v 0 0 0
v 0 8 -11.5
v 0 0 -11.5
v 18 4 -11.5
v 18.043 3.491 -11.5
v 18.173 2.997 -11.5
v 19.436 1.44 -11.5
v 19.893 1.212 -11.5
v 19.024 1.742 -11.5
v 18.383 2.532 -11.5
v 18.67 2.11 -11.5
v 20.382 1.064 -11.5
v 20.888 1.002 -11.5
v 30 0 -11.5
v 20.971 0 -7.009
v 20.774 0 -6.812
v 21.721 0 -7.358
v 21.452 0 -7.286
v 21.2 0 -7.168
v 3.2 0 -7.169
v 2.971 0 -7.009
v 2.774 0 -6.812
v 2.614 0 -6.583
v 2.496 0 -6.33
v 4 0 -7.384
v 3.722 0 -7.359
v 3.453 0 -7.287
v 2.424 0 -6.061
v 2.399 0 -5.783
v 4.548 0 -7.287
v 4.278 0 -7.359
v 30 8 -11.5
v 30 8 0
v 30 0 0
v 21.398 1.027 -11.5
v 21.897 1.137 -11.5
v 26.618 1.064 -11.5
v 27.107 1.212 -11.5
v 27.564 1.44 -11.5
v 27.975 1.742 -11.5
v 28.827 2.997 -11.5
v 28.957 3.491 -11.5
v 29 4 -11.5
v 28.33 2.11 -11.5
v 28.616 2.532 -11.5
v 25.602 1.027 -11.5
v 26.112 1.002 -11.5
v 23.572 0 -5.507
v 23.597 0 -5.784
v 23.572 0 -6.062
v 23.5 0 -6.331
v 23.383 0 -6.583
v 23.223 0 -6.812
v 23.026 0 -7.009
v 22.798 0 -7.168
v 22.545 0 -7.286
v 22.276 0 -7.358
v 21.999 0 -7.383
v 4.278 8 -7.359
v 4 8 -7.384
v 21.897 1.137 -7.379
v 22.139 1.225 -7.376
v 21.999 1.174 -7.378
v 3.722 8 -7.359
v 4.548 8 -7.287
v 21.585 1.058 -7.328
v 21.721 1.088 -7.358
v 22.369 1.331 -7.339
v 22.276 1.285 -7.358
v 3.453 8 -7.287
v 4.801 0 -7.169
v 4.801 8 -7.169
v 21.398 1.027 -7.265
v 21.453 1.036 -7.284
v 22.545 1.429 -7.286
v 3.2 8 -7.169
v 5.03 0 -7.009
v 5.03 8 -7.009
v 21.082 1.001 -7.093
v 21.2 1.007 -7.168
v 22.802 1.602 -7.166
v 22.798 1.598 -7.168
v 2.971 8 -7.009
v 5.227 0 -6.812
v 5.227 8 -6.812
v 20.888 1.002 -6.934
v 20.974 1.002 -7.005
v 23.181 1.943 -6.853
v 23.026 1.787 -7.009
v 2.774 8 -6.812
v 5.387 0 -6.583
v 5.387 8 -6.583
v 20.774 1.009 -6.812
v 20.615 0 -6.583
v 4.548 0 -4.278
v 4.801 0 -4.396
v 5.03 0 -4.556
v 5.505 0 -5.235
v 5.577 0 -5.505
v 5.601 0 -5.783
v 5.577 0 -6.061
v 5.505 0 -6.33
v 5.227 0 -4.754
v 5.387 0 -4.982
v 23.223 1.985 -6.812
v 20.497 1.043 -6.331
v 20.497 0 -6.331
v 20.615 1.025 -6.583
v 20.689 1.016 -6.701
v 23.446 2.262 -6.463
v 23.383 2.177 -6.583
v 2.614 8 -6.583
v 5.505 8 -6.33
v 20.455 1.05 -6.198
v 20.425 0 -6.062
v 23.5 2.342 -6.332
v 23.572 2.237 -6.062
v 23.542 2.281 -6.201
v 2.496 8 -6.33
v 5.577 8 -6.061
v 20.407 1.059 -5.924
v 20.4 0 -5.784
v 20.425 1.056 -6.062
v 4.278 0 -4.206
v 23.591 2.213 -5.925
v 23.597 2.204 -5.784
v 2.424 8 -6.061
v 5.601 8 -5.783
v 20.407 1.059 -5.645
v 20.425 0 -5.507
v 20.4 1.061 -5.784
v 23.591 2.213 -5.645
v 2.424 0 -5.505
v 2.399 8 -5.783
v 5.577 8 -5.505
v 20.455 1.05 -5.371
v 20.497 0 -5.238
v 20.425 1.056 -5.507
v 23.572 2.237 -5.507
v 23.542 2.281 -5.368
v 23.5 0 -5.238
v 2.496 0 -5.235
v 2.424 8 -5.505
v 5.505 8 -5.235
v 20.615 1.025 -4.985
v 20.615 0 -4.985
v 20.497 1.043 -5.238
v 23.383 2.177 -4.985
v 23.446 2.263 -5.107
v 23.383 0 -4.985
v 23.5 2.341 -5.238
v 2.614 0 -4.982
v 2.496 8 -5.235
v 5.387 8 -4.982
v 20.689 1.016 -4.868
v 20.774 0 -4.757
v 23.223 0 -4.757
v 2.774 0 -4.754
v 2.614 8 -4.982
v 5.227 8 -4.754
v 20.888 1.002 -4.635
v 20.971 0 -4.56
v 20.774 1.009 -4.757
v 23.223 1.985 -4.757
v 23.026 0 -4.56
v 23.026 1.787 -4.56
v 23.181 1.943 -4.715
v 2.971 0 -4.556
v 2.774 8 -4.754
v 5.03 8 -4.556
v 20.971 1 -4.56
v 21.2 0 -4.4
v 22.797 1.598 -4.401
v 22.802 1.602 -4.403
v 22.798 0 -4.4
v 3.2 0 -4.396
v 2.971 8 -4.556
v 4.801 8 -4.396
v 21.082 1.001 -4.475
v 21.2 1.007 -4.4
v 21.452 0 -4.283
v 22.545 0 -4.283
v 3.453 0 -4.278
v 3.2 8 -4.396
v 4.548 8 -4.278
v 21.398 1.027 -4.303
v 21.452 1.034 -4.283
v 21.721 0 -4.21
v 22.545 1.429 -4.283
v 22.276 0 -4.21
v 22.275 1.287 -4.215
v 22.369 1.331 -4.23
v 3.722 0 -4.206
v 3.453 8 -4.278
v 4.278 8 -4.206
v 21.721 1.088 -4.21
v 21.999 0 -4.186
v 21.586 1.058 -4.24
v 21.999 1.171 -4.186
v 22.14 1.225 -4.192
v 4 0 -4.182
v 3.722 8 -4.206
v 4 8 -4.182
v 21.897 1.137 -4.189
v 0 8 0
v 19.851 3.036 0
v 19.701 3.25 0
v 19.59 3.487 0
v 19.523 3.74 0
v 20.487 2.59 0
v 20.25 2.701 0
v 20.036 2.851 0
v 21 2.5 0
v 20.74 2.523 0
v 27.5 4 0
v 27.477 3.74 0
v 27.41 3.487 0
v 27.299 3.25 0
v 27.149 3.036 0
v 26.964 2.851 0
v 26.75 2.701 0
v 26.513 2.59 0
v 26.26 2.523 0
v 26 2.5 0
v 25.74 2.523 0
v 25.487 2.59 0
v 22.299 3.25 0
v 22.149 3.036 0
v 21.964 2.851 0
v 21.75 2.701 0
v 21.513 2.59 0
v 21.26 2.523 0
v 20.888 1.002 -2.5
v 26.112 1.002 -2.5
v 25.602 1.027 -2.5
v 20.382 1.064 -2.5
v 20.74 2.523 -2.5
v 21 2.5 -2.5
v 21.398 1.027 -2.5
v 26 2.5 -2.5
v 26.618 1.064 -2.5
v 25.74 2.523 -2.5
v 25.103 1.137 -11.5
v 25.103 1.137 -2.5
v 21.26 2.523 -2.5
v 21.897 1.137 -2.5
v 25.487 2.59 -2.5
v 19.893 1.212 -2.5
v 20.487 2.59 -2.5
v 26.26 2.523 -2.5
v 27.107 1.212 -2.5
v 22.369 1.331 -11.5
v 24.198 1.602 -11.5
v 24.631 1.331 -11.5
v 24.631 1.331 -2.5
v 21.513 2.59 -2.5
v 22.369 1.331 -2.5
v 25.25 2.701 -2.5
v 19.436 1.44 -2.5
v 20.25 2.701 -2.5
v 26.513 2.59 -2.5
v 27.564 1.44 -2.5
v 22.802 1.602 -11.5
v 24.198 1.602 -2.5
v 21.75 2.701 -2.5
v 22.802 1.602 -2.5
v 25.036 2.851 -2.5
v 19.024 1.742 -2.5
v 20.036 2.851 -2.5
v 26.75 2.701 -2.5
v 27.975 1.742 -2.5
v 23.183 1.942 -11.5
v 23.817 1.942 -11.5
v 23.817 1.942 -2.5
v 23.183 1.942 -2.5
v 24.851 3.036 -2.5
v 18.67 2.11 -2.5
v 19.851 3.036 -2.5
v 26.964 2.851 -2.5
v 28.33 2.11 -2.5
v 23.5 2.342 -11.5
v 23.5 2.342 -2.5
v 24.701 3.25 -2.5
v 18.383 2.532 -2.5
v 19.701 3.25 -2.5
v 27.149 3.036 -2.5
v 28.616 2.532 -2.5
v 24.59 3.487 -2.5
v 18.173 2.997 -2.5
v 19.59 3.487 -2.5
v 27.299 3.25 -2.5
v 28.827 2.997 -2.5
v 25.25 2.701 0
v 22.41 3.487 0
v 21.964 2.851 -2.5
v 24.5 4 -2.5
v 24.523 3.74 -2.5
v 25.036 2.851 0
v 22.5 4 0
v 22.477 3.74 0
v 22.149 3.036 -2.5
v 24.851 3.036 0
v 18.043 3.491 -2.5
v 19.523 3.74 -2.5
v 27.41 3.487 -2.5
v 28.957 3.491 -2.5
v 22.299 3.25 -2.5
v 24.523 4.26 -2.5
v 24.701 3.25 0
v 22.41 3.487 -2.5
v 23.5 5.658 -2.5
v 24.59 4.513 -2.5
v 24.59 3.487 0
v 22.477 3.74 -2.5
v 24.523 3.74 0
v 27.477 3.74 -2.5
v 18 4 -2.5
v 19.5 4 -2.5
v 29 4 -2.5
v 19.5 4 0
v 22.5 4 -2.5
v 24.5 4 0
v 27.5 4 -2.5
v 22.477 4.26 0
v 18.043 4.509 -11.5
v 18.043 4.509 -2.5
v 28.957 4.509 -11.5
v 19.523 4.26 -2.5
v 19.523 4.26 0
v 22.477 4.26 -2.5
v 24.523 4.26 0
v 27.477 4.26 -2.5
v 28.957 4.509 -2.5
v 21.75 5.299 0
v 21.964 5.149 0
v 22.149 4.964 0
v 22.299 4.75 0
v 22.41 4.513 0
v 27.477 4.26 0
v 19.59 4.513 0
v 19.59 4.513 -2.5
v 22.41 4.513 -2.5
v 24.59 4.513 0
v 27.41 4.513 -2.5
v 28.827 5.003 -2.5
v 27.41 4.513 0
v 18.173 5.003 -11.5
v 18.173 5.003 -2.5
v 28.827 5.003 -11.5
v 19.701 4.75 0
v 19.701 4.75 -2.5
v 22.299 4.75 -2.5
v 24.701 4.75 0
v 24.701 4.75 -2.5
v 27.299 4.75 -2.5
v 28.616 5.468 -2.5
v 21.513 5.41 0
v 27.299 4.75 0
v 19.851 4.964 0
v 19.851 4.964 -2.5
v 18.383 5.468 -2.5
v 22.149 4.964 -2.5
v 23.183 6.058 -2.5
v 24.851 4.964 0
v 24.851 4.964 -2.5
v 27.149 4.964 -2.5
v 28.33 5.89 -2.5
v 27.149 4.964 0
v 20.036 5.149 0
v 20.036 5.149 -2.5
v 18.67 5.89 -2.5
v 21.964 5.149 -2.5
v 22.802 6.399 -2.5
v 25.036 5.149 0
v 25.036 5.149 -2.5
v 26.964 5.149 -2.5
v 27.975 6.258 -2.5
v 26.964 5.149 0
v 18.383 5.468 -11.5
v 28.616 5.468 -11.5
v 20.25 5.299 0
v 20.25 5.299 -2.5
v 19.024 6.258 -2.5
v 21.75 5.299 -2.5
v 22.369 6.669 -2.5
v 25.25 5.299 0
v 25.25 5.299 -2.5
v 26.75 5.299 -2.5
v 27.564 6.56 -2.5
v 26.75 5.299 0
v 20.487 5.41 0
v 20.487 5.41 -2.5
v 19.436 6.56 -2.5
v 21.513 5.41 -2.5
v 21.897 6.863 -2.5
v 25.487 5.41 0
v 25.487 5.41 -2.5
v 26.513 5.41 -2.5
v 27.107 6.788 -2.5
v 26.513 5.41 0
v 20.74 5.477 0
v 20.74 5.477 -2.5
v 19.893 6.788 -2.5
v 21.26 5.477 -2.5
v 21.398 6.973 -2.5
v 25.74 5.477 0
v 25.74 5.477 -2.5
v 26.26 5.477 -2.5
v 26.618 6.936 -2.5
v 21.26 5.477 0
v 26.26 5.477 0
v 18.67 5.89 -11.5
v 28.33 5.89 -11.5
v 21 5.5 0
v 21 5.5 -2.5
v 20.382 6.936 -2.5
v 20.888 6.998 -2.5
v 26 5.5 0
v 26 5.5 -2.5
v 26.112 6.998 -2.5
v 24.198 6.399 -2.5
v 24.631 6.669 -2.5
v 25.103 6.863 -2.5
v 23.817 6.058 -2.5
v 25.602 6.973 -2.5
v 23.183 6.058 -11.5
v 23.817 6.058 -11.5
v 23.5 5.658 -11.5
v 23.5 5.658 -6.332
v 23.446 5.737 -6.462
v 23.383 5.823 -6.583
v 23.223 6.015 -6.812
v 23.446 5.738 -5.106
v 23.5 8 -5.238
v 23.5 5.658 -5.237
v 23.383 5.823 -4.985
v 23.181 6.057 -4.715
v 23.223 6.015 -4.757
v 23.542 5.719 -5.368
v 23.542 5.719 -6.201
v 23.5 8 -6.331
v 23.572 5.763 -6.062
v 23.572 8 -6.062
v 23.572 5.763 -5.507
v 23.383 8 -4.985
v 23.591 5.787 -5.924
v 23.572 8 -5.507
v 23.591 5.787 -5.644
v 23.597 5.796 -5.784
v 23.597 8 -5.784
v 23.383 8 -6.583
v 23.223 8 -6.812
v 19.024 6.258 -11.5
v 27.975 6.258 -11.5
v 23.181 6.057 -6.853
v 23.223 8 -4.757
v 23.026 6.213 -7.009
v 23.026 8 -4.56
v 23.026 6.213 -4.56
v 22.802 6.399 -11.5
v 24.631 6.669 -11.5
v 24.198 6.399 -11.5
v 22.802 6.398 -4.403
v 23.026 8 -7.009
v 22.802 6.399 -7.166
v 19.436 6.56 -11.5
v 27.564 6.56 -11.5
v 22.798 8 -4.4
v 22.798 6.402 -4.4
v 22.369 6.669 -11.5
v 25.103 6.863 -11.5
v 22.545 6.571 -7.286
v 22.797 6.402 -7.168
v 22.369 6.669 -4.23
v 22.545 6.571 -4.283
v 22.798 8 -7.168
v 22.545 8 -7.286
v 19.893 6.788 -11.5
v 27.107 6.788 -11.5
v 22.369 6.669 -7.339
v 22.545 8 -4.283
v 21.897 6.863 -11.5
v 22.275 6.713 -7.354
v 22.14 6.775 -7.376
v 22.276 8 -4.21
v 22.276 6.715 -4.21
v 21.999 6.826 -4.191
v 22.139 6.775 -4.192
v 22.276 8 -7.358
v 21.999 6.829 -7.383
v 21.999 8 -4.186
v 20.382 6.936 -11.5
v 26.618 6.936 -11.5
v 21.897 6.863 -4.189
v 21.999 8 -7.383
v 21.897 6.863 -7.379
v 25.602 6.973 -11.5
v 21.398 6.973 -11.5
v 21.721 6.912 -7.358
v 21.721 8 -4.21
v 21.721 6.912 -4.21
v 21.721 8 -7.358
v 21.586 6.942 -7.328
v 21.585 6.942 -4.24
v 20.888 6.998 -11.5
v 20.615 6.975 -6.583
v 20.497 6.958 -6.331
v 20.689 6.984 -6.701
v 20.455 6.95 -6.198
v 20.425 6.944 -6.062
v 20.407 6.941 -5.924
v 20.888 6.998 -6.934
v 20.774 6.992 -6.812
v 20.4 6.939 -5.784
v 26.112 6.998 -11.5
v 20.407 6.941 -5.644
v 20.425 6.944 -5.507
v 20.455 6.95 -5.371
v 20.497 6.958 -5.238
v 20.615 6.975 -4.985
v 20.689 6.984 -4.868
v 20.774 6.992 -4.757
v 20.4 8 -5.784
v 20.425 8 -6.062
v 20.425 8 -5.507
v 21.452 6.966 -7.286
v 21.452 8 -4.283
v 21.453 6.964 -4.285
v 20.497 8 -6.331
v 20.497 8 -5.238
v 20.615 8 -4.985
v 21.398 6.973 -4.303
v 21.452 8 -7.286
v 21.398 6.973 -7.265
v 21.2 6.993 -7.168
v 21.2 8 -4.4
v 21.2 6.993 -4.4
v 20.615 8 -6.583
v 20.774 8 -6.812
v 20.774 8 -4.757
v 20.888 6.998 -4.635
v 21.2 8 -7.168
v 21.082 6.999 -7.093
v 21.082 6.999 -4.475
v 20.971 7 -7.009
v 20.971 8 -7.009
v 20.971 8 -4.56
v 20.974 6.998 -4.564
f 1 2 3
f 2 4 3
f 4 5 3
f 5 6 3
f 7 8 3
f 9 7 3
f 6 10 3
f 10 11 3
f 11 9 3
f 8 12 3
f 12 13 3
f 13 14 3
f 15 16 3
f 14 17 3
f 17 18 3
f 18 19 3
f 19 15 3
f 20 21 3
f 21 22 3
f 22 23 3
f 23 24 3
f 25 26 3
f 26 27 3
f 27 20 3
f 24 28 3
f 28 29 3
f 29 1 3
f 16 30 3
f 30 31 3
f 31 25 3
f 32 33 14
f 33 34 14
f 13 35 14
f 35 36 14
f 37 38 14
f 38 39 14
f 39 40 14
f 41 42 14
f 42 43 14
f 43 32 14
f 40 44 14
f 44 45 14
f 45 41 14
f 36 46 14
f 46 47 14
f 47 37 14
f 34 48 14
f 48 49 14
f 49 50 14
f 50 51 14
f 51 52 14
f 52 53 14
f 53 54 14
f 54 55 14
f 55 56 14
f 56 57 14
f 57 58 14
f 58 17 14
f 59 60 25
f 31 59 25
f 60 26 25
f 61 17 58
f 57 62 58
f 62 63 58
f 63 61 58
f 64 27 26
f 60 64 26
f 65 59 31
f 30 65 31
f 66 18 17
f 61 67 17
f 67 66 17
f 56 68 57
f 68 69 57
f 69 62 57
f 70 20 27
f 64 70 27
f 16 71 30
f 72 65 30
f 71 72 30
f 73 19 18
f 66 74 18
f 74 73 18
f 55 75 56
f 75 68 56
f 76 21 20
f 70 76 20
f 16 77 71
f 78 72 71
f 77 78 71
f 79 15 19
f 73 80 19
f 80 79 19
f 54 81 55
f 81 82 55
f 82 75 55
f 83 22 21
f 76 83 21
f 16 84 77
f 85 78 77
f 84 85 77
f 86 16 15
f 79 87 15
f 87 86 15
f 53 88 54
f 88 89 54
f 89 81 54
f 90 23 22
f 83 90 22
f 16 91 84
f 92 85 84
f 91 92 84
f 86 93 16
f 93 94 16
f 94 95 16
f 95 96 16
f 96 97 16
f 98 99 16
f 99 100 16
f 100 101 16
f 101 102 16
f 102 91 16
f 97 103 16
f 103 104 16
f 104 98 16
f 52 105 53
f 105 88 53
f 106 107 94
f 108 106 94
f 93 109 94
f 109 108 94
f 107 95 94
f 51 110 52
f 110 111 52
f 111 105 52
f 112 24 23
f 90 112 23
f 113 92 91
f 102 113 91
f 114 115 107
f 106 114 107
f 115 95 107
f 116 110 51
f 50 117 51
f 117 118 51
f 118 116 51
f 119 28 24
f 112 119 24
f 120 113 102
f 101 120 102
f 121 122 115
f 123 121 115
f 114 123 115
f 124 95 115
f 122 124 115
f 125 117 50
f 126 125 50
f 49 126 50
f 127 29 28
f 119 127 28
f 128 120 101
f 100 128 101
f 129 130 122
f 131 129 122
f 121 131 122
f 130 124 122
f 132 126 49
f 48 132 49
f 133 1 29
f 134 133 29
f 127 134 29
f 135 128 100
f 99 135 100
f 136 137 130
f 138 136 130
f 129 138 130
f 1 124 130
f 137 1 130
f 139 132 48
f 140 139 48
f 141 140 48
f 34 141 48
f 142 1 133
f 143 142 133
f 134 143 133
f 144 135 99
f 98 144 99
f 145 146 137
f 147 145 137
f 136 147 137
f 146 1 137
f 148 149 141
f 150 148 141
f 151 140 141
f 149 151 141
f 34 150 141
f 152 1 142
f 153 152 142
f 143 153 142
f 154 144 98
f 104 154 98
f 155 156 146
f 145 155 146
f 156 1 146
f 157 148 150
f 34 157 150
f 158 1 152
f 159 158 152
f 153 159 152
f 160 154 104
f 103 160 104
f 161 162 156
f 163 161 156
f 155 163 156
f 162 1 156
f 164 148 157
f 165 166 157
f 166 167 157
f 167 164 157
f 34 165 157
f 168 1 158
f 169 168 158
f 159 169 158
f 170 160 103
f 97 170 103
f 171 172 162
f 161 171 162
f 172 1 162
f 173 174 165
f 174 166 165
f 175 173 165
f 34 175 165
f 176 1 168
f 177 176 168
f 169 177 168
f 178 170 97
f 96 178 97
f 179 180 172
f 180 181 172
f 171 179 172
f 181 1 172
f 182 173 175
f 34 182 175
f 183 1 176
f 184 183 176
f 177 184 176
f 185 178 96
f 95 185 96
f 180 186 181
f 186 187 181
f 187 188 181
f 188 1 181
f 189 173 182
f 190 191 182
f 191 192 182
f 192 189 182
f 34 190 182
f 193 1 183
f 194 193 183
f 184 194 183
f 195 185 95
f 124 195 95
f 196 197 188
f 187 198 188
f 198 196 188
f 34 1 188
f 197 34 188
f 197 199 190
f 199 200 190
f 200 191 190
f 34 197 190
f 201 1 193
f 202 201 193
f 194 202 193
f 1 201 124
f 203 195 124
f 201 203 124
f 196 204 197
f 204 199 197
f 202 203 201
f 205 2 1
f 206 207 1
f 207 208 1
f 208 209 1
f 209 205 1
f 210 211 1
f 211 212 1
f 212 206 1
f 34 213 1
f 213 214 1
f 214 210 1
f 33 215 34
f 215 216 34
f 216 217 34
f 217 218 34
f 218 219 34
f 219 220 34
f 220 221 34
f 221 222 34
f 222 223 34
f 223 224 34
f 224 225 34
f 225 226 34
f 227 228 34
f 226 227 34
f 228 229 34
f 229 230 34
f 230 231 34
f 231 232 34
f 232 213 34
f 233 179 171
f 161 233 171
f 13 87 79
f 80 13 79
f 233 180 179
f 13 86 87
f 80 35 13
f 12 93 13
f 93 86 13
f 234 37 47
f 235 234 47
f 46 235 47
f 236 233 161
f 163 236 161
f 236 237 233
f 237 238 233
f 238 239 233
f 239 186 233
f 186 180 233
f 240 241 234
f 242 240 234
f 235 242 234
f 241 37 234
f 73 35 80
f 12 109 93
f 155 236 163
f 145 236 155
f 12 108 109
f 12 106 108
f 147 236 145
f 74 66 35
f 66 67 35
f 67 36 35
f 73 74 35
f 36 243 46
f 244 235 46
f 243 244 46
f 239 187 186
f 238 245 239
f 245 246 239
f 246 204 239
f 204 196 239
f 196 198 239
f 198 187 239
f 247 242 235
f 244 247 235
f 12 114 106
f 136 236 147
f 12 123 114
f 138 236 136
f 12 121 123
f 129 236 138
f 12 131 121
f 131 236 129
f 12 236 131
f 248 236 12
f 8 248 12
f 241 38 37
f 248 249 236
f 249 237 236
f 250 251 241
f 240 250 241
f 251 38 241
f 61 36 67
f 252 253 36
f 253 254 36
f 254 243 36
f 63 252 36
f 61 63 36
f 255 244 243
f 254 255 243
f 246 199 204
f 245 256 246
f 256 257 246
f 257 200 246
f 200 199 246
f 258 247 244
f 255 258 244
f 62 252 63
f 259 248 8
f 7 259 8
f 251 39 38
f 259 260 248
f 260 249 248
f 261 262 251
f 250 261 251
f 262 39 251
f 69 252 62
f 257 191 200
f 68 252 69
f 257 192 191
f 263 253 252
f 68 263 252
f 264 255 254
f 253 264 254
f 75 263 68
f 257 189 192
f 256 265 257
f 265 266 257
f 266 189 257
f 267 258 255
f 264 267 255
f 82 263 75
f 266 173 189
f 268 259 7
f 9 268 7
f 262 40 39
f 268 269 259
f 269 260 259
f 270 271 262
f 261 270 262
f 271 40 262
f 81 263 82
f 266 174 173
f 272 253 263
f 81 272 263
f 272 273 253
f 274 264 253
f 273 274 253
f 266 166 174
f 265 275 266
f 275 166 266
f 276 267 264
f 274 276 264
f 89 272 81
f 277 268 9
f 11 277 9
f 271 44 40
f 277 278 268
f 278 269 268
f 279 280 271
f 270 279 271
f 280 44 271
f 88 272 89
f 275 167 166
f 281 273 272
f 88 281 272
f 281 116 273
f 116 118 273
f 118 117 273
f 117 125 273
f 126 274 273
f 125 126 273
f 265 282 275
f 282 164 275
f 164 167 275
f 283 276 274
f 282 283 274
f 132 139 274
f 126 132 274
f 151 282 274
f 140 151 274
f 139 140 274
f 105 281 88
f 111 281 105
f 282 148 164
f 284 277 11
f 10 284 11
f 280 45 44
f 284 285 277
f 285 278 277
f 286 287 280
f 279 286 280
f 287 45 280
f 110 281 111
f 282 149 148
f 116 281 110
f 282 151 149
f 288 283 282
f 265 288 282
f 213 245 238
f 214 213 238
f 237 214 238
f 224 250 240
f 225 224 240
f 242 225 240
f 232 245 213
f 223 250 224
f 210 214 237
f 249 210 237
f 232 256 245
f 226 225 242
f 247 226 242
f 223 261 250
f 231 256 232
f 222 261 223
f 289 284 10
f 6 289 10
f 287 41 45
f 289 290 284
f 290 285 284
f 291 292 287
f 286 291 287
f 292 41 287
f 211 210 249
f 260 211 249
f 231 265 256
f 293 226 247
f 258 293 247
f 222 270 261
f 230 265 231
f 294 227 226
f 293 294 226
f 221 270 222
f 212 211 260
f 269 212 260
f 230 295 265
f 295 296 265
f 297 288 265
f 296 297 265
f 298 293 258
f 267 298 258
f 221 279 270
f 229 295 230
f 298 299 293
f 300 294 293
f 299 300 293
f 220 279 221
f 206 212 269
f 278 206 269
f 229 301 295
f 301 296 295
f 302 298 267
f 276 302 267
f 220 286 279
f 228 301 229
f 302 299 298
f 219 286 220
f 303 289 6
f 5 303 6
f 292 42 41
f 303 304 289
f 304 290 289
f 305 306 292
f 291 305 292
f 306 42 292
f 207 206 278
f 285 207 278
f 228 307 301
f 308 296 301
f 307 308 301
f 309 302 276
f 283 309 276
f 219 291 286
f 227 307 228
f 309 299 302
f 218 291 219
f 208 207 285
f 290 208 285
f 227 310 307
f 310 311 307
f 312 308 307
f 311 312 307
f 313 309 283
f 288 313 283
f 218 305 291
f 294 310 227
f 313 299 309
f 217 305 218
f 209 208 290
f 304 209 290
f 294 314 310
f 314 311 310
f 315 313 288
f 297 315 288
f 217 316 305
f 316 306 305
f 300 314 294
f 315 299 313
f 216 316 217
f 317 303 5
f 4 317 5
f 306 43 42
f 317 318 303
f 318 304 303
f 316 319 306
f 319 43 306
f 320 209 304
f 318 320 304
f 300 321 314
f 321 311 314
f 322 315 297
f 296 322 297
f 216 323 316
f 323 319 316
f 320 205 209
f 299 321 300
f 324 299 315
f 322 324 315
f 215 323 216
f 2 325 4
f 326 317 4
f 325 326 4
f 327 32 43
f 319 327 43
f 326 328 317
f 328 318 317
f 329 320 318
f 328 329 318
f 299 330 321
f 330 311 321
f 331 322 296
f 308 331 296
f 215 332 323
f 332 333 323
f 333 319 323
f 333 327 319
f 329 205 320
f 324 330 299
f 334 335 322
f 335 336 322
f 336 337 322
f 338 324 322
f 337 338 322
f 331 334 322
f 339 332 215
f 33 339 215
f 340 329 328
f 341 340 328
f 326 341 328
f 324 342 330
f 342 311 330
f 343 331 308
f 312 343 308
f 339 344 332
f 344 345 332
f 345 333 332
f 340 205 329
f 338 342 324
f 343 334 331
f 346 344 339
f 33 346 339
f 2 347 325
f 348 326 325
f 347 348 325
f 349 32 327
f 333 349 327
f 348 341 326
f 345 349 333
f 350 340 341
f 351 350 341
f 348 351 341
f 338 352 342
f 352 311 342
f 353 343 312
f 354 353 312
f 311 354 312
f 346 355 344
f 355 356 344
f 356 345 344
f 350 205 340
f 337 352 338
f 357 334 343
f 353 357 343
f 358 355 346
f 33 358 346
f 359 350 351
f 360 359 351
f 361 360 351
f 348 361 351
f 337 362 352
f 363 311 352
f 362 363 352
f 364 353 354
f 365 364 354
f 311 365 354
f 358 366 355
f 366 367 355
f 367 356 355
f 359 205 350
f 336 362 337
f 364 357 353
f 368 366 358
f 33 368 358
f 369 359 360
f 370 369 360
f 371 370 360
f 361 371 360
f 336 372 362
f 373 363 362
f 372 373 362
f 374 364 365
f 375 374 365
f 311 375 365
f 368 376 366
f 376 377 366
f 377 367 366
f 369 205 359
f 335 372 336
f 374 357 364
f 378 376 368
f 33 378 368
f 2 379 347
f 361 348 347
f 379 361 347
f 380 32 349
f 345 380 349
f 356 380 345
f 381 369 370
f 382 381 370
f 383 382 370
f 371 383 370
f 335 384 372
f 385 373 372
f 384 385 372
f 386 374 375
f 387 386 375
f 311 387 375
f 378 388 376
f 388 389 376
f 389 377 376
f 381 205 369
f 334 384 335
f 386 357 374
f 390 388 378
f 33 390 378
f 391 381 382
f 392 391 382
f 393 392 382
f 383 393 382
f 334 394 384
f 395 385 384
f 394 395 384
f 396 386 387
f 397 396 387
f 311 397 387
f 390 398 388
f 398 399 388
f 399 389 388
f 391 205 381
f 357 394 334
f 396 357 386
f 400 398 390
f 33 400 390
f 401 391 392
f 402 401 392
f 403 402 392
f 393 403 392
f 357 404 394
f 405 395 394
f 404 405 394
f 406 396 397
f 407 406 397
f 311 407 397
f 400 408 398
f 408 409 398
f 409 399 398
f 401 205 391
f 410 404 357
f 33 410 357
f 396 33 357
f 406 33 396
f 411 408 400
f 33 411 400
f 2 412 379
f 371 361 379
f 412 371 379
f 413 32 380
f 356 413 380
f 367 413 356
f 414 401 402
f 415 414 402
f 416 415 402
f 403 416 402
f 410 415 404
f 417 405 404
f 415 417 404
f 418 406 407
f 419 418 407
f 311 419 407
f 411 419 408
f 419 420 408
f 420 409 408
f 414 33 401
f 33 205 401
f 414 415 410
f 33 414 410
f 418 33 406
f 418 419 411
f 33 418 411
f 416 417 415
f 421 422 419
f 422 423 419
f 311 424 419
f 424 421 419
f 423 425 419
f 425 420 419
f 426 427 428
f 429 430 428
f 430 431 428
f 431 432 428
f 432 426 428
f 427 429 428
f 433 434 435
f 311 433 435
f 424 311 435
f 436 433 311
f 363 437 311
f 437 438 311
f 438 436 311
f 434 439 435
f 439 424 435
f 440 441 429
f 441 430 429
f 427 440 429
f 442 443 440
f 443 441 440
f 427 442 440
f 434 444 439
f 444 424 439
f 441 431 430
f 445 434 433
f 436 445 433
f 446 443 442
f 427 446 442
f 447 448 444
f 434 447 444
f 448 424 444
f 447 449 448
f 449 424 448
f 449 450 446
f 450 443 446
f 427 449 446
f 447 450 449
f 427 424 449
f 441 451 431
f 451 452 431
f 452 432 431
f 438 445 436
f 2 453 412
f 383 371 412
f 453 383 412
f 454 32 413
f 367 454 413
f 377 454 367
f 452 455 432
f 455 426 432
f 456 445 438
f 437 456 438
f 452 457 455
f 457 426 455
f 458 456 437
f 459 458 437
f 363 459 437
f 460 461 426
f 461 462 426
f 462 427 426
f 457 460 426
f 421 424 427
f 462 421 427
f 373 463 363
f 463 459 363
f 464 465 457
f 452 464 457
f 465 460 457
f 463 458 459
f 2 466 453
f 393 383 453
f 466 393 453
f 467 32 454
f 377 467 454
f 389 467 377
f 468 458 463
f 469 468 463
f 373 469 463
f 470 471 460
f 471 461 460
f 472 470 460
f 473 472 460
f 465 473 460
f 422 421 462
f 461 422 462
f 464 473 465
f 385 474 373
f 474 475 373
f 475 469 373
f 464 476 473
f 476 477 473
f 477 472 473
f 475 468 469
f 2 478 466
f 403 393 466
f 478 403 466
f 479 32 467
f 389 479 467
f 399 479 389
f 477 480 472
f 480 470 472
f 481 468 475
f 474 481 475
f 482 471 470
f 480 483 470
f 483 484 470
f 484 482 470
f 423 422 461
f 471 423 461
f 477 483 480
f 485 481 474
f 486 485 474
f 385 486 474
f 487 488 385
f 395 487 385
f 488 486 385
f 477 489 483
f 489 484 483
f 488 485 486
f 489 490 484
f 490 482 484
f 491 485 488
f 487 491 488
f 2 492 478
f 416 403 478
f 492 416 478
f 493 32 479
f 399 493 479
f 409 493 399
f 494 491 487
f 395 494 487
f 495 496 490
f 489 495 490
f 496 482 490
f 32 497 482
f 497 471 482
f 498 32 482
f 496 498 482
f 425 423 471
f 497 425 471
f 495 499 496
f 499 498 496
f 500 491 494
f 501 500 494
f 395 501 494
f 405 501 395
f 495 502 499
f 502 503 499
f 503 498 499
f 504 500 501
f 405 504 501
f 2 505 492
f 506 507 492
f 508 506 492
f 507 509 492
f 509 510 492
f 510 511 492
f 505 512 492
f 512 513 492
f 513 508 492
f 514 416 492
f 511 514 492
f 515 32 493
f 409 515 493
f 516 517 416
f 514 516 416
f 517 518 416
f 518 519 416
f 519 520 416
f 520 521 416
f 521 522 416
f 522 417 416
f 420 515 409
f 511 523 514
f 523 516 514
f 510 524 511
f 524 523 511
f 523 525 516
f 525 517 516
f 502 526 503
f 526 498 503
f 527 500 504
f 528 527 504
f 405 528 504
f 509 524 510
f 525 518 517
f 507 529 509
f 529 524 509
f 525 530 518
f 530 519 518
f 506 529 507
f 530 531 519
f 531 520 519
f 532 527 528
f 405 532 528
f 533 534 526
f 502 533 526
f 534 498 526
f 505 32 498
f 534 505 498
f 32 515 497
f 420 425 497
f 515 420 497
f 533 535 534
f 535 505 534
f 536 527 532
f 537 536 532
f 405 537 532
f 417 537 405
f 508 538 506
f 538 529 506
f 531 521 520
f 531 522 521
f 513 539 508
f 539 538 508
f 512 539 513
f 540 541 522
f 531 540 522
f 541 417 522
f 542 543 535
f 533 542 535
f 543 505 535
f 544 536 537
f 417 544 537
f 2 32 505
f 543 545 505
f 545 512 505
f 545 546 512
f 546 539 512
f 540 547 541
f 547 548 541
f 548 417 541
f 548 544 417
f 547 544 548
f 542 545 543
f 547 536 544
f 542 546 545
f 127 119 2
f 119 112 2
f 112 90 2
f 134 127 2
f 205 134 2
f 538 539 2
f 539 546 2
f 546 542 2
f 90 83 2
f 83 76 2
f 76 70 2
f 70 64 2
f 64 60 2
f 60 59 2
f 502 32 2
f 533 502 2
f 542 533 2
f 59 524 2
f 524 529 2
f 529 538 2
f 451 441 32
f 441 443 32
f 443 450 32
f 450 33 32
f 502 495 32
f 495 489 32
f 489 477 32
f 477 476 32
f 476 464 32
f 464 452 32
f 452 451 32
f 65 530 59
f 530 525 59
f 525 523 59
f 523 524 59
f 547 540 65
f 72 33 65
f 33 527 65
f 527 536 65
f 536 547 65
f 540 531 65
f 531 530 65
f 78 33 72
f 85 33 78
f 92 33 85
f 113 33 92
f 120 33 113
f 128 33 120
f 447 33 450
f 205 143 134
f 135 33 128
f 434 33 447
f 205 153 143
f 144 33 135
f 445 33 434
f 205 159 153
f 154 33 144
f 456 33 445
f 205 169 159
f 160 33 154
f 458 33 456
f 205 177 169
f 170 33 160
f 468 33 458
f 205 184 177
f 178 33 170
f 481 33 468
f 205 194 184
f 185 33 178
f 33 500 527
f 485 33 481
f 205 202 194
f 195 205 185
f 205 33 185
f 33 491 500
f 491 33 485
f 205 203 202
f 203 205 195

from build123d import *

# Parameters (mm, degrees)
SKETCH1_W           = 30
SKETCH1_H           = 11.5
BOSS_EXTRUDE1_DEPTH = 8
SKETCH2_R           = 1.5
CUT_EXTRUDE1_DEPTH  = 12.5
SKETCH3_R           = 1.598160281
SKETCH3_R_2         = 1.600993429
CUT_EXTRUDE2_DEPTH  = 10
CUT_EXTRUDE3_DEPTH  = 9


with BuildPart() as part:
    # Sketch1 → Boss-Extrude1 (new body)
    with BuildSketch(Plane(origin=(0, 0, 0), x_dir=(1, 0, 0), z_dir=(0, 1, 0))):
        with Locations((15, 5.75)):
            Rectangle(SKETCH1_W, SKETCH1_H)
    extrude(amount=BOSS_EXTRUDE1_DEPTH)

    # Sketch2 → Cut-Extrude1 (cut, through all)
    with BuildSketch(Plane(origin=(0, 0, -11.5), x_dir=(-1, 0, 0), z_dir=(0, 0, -1))):
        with Locations((-21, 4)):
            Circle(SKETCH2_R)
        with Locations((-26, 4)):
            Circle(SKETCH2_R)
    extrude(amount=-CUT_EXTRUDE1_DEPTH, mode=Mode.SUBTRACT)

    # Sketch3 → Cut-Extrude2 (cut)
    with BuildSketch(Plane.XZ):
        with Locations((21.998596175, -5.784390941)):
            Circle(SKETCH3_R)
        with Locations((4.000477604, -5.782705683)):
            Circle(SKETCH3_R_2)
    extrude(amount=-CUT_EXTRUDE2_DEPTH, mode=Mode.SUBTRACT)

    # Sketch4 → Cut-Extrude3 (cut)
    with BuildSketch(Plane(origin=(0, 0, -11.5), x_dir=(-1, 0, 0), z_dir=(0, 0, -1))):
        with BuildLine():
            ThreePointArc((-23.5, 5.658312395), (-29, 4), (-23.5, 2.341687605))
            ThreePointArc((-23.5, 2.341687605), (-18, 4), (-23.5, 5.658312395))
        make_face()
    extrude(amount=-CUT_EXTRUDE3_DEPTH, mode=Mode.SUBTRACT)


solid = part.part
